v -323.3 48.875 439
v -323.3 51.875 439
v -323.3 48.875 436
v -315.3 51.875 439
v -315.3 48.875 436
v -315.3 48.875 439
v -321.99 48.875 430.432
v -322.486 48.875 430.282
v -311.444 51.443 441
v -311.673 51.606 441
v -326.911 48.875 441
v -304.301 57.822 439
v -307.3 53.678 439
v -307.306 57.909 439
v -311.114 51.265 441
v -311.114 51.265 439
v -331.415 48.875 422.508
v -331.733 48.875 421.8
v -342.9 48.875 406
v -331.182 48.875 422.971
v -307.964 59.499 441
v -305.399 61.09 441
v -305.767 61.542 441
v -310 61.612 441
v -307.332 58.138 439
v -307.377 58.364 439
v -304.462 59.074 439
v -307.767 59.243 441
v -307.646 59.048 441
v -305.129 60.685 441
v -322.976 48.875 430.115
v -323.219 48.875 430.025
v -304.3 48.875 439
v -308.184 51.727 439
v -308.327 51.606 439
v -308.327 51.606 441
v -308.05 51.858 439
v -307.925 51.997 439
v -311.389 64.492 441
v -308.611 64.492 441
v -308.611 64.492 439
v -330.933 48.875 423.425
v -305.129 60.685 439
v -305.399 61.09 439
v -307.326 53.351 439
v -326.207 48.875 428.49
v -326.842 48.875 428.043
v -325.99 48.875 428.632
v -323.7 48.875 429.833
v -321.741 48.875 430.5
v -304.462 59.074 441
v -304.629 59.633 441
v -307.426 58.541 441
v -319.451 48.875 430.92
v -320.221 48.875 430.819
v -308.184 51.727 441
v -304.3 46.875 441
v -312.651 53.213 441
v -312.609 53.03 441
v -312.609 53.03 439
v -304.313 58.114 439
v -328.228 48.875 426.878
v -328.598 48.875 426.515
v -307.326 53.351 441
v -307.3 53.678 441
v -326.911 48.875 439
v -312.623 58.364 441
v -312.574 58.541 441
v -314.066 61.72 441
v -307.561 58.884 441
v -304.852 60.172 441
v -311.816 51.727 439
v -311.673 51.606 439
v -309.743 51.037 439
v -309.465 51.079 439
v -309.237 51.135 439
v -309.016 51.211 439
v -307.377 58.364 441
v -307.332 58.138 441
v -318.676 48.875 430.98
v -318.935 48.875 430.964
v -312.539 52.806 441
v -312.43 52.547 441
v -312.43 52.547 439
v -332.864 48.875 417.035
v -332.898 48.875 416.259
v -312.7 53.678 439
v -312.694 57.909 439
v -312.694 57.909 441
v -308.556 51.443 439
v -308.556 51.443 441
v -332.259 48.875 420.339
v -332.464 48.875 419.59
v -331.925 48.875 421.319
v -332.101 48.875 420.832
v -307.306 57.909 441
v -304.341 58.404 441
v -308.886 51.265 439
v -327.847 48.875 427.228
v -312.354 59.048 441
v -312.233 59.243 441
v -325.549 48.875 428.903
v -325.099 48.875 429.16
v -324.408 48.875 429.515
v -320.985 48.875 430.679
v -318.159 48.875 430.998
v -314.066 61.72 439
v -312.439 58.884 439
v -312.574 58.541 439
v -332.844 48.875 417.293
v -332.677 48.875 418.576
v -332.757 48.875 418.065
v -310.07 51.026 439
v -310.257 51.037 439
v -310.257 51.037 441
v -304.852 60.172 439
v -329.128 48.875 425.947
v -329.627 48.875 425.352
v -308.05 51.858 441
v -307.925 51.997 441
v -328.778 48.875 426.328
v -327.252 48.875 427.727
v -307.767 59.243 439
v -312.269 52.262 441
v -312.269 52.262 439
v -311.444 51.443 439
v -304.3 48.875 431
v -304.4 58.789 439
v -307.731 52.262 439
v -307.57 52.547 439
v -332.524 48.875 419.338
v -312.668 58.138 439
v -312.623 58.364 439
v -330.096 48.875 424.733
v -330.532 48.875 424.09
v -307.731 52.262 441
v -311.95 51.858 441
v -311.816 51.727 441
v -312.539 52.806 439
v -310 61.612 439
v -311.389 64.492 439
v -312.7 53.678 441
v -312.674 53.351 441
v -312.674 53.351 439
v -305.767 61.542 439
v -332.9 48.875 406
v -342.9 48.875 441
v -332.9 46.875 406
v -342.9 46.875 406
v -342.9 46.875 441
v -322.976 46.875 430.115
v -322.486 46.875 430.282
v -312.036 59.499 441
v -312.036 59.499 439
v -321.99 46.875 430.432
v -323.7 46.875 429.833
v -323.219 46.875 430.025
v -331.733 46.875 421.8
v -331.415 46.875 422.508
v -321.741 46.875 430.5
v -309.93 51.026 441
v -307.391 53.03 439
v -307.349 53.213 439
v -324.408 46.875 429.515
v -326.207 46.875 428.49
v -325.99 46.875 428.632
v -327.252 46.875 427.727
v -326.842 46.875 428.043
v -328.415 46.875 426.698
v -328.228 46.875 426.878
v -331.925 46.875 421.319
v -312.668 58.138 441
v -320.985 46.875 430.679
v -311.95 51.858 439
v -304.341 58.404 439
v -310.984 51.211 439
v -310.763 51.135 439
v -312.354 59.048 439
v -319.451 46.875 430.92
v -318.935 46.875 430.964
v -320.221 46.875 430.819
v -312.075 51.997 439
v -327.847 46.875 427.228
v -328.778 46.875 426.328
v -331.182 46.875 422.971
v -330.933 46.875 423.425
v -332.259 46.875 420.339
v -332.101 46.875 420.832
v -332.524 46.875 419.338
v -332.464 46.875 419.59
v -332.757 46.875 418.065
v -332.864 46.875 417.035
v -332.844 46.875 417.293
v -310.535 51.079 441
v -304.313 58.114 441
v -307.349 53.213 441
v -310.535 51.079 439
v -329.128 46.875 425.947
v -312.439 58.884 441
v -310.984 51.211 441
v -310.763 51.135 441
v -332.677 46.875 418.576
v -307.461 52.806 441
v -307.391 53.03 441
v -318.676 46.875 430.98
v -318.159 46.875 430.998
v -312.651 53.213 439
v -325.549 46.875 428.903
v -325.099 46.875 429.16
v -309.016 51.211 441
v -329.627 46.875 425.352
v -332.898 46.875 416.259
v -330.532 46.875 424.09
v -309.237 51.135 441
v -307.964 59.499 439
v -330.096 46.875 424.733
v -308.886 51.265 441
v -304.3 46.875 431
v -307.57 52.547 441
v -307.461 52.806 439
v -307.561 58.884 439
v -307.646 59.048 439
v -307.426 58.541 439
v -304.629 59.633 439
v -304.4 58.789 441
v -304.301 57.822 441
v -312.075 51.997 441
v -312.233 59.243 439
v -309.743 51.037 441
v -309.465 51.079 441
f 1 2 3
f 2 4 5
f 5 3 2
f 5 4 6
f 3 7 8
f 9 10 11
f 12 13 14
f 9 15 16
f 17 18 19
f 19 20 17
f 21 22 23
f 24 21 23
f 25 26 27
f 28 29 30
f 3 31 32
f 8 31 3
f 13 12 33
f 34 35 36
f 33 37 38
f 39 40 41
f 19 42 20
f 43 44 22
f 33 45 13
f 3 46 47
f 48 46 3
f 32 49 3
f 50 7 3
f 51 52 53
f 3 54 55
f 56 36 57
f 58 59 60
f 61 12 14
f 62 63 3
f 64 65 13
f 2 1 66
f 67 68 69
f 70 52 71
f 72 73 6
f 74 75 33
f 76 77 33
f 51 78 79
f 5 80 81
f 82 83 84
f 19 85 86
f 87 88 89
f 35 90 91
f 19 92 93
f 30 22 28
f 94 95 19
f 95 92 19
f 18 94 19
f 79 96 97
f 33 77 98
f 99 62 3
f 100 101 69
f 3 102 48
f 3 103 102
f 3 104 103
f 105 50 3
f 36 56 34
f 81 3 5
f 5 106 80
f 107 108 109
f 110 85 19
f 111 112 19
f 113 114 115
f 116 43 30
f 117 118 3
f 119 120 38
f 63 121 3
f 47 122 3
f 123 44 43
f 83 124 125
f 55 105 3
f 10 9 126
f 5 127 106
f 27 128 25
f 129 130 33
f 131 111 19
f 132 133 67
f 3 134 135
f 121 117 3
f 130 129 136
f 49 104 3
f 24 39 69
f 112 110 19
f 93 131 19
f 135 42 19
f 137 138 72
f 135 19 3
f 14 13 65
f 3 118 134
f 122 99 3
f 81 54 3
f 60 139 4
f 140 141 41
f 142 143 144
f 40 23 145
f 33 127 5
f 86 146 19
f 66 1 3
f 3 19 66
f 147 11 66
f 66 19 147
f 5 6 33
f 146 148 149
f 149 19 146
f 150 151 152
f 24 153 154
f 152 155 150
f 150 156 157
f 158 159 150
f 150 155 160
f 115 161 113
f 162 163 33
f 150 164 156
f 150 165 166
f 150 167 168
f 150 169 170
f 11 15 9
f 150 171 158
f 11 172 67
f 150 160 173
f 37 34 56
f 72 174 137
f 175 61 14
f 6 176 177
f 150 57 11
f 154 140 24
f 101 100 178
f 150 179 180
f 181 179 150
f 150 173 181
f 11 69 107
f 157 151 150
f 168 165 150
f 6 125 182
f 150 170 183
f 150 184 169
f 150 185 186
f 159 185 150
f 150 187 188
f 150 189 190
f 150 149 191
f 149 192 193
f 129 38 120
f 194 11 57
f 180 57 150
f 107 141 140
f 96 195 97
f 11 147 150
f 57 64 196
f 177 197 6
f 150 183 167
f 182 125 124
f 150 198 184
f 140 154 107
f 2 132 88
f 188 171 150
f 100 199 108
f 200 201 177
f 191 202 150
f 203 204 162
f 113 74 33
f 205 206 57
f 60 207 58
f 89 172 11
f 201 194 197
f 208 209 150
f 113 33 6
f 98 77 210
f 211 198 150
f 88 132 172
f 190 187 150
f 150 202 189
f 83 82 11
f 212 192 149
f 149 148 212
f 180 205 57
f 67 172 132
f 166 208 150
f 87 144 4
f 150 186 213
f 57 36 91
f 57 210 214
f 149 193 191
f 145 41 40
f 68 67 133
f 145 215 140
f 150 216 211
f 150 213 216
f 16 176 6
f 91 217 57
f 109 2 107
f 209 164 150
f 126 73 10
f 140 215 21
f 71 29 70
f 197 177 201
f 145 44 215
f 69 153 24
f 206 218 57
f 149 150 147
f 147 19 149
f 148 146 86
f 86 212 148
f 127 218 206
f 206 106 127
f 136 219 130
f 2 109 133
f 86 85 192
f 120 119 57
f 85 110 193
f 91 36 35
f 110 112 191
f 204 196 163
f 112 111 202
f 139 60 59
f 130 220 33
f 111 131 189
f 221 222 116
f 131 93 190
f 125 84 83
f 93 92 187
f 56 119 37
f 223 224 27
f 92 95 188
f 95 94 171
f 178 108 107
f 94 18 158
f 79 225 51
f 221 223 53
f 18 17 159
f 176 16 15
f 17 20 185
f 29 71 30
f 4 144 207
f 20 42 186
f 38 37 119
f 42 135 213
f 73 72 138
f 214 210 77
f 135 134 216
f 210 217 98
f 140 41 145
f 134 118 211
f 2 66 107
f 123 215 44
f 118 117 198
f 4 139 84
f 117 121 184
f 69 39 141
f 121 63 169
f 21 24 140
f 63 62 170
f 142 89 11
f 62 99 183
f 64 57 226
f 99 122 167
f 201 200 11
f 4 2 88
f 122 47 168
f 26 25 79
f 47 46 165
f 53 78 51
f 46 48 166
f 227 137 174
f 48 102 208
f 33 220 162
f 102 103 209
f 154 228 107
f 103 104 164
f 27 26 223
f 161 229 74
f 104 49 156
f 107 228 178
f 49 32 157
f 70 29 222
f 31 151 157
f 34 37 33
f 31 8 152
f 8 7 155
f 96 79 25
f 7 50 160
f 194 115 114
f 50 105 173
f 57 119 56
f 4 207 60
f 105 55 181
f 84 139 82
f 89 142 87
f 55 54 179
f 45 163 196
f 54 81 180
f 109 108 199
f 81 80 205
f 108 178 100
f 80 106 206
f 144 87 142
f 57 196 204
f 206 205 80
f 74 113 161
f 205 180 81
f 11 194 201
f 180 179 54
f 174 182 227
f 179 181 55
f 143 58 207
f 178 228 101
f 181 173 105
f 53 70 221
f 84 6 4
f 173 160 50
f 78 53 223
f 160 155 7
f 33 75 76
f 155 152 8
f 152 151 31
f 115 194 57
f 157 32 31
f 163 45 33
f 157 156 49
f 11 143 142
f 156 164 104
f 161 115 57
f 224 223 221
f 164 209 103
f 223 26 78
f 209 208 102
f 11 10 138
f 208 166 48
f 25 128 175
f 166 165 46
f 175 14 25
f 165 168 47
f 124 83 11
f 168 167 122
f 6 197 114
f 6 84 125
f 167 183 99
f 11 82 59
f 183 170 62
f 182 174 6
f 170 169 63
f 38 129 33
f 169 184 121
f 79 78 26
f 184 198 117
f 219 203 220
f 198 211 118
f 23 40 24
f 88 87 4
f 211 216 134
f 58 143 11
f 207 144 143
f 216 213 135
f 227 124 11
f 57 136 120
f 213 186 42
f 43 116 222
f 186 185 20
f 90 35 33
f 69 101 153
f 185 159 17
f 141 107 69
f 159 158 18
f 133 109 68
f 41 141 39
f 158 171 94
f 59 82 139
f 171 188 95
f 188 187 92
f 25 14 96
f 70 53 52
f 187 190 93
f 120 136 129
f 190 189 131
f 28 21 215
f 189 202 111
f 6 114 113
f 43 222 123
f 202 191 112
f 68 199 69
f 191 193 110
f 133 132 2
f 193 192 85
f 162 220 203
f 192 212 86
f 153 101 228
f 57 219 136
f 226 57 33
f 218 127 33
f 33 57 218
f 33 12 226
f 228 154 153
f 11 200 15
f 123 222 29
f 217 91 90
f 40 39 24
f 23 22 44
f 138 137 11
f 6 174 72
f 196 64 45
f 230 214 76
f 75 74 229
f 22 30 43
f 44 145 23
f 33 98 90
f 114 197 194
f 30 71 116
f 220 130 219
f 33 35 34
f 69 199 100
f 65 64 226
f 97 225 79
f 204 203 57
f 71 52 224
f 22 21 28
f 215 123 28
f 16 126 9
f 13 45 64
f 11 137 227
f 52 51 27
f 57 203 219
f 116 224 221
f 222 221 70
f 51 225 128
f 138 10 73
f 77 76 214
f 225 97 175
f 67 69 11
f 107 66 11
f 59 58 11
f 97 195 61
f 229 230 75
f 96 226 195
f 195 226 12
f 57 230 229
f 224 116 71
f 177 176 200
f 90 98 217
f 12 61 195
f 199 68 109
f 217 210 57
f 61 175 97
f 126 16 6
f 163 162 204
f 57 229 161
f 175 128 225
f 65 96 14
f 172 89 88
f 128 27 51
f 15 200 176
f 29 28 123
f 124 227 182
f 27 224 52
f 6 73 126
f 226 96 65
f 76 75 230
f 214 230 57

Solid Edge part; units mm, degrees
sketch "Sketch1" plane through (0, 0, 439) normal (0, 0, 1) x (1, 0, 0)
  line L0 (-315.7, 48.875) -> (-342.9, 48.875)
  line L1 (-342.9, 48.875) -> (-342.9, 46.875)
  line L2 (-304.3, 46.875) -> (-342.9, 46.875)
  line L3 (-304.3, 57.725) -> (-304.3, 46.875)
  arc A0 (-305.8998, 61.6846) -> (-304.3, 57.725) centre (-310, 57.725) cw
  line L4 (-305.8998, 61.6846) -> (-308.6107, 64.4918)
  line L5 (-308.6107, 64.4918) -> (-311.3893, 64.4918)
  line L6 (-311.3893, 64.4918) -> (-314.1002, 61.6846)
  arc A1 (-315.7, 57.725) -> (-314.1002, 61.6846) centre (-310, 57.725) cw
  line L7 (-315.7, 48.875) -> (-315.7, 57.725)
  arc A2 (-308.0578, 59.6006) -> (-307.3, 57.725) centre (-310, 57.725) cw
  line L8 (-307.3, 57.725) -> (-307.3, 53.725)
  line L9 (-312.7, 57.725) -> (-312.7, 53.725)
  line L10 (-310, 61.6118) -> (-311.9422, 59.6006)
  line L11 (-308.0578, 59.6006) -> (-310, 61.6118)
  arc A3 (-307.3, 53.725) -> (-312.7, 53.725) centre (-310, 53.725) cw
  arc A4 (-312.7, 57.725) -> (-311.9422, 59.6006) centre (-310, 57.725) cw
extrude "ExtrudedProtrusion_1" add sketch "Sketch1" along normal blind 2
sketch "Sketch2" plane through (-323.6, 55.15, 441) normal (0, 0, 1) x (0, 1, 0)
  line L0 (-6.275, -19.3) -> (-6.275, 19.3)
  line L1 (-6.275, 19.3) -> (-8.275, 19.3)
  line L2 (-8.275, 19.3) -> (-8.275, -19.3)
  line L3 (-8.275, -19.3) -> (-6.275, -19.3)
extrude "ExtrudedProtrusion_2" add sketch "Sketch2" against normal blind 35
sketch "Sketch3" plane through (-323.6, 46.875, 419) normal (0, -1, 0) x (1, 0, 0)
  line L0 (-19.3, -13) -> (-9.3, -13)
  line L1 (-9.3, -13) -> (-9.3, -3)
  arc A0 (-9.3, -3) -> (5.7, 12) centre (5.7, -3) cw
  line L2 (5.7, 12) -> (19.3, 12)
  dimension "D1" = 25
extrude "Cutout1" cut sketch "Sketch3" against normal through all material side at (-337.9, 46.875, 405.95)
sketch "Sketch4" plane through (-323.6, 55.15, 441) normal (0, 0, 1) x (-1, 0, 0)
  line L0 (-9.5695, -6.6055) -> (3.311, 6.275)
  line L1 (-7.9, 6.275) -> (3.311, 6.275)
  line L2 (-7.9, -2.575) -> (-7.9, 6.275)
  arc A0 (-9.5695, -6.6055) -> (-7.9, -2.575) centre (-13.6, -2.575) ccw
extrude "ExtrudedProtrusion_5" add sketch "Sketch4" against normal blind 2
sketch "Sketch5" plane through (-318.3, 52.3, 429) normal (1, 0, 0) x (0, 0, -1)
  line L0 (-10, -3.425) -> (-10, -0.425)
  line L1 (-10, -0.425) -> (-7, -3.425)
  line L2 (-7, -3.425) -> (-10, -3.425)
extrude "ExtrudedProtrusion_6" add sketch "Sketch5" against normal blind 5 and the other way blind 3
properties material "ABS Plastic, medium impact"
